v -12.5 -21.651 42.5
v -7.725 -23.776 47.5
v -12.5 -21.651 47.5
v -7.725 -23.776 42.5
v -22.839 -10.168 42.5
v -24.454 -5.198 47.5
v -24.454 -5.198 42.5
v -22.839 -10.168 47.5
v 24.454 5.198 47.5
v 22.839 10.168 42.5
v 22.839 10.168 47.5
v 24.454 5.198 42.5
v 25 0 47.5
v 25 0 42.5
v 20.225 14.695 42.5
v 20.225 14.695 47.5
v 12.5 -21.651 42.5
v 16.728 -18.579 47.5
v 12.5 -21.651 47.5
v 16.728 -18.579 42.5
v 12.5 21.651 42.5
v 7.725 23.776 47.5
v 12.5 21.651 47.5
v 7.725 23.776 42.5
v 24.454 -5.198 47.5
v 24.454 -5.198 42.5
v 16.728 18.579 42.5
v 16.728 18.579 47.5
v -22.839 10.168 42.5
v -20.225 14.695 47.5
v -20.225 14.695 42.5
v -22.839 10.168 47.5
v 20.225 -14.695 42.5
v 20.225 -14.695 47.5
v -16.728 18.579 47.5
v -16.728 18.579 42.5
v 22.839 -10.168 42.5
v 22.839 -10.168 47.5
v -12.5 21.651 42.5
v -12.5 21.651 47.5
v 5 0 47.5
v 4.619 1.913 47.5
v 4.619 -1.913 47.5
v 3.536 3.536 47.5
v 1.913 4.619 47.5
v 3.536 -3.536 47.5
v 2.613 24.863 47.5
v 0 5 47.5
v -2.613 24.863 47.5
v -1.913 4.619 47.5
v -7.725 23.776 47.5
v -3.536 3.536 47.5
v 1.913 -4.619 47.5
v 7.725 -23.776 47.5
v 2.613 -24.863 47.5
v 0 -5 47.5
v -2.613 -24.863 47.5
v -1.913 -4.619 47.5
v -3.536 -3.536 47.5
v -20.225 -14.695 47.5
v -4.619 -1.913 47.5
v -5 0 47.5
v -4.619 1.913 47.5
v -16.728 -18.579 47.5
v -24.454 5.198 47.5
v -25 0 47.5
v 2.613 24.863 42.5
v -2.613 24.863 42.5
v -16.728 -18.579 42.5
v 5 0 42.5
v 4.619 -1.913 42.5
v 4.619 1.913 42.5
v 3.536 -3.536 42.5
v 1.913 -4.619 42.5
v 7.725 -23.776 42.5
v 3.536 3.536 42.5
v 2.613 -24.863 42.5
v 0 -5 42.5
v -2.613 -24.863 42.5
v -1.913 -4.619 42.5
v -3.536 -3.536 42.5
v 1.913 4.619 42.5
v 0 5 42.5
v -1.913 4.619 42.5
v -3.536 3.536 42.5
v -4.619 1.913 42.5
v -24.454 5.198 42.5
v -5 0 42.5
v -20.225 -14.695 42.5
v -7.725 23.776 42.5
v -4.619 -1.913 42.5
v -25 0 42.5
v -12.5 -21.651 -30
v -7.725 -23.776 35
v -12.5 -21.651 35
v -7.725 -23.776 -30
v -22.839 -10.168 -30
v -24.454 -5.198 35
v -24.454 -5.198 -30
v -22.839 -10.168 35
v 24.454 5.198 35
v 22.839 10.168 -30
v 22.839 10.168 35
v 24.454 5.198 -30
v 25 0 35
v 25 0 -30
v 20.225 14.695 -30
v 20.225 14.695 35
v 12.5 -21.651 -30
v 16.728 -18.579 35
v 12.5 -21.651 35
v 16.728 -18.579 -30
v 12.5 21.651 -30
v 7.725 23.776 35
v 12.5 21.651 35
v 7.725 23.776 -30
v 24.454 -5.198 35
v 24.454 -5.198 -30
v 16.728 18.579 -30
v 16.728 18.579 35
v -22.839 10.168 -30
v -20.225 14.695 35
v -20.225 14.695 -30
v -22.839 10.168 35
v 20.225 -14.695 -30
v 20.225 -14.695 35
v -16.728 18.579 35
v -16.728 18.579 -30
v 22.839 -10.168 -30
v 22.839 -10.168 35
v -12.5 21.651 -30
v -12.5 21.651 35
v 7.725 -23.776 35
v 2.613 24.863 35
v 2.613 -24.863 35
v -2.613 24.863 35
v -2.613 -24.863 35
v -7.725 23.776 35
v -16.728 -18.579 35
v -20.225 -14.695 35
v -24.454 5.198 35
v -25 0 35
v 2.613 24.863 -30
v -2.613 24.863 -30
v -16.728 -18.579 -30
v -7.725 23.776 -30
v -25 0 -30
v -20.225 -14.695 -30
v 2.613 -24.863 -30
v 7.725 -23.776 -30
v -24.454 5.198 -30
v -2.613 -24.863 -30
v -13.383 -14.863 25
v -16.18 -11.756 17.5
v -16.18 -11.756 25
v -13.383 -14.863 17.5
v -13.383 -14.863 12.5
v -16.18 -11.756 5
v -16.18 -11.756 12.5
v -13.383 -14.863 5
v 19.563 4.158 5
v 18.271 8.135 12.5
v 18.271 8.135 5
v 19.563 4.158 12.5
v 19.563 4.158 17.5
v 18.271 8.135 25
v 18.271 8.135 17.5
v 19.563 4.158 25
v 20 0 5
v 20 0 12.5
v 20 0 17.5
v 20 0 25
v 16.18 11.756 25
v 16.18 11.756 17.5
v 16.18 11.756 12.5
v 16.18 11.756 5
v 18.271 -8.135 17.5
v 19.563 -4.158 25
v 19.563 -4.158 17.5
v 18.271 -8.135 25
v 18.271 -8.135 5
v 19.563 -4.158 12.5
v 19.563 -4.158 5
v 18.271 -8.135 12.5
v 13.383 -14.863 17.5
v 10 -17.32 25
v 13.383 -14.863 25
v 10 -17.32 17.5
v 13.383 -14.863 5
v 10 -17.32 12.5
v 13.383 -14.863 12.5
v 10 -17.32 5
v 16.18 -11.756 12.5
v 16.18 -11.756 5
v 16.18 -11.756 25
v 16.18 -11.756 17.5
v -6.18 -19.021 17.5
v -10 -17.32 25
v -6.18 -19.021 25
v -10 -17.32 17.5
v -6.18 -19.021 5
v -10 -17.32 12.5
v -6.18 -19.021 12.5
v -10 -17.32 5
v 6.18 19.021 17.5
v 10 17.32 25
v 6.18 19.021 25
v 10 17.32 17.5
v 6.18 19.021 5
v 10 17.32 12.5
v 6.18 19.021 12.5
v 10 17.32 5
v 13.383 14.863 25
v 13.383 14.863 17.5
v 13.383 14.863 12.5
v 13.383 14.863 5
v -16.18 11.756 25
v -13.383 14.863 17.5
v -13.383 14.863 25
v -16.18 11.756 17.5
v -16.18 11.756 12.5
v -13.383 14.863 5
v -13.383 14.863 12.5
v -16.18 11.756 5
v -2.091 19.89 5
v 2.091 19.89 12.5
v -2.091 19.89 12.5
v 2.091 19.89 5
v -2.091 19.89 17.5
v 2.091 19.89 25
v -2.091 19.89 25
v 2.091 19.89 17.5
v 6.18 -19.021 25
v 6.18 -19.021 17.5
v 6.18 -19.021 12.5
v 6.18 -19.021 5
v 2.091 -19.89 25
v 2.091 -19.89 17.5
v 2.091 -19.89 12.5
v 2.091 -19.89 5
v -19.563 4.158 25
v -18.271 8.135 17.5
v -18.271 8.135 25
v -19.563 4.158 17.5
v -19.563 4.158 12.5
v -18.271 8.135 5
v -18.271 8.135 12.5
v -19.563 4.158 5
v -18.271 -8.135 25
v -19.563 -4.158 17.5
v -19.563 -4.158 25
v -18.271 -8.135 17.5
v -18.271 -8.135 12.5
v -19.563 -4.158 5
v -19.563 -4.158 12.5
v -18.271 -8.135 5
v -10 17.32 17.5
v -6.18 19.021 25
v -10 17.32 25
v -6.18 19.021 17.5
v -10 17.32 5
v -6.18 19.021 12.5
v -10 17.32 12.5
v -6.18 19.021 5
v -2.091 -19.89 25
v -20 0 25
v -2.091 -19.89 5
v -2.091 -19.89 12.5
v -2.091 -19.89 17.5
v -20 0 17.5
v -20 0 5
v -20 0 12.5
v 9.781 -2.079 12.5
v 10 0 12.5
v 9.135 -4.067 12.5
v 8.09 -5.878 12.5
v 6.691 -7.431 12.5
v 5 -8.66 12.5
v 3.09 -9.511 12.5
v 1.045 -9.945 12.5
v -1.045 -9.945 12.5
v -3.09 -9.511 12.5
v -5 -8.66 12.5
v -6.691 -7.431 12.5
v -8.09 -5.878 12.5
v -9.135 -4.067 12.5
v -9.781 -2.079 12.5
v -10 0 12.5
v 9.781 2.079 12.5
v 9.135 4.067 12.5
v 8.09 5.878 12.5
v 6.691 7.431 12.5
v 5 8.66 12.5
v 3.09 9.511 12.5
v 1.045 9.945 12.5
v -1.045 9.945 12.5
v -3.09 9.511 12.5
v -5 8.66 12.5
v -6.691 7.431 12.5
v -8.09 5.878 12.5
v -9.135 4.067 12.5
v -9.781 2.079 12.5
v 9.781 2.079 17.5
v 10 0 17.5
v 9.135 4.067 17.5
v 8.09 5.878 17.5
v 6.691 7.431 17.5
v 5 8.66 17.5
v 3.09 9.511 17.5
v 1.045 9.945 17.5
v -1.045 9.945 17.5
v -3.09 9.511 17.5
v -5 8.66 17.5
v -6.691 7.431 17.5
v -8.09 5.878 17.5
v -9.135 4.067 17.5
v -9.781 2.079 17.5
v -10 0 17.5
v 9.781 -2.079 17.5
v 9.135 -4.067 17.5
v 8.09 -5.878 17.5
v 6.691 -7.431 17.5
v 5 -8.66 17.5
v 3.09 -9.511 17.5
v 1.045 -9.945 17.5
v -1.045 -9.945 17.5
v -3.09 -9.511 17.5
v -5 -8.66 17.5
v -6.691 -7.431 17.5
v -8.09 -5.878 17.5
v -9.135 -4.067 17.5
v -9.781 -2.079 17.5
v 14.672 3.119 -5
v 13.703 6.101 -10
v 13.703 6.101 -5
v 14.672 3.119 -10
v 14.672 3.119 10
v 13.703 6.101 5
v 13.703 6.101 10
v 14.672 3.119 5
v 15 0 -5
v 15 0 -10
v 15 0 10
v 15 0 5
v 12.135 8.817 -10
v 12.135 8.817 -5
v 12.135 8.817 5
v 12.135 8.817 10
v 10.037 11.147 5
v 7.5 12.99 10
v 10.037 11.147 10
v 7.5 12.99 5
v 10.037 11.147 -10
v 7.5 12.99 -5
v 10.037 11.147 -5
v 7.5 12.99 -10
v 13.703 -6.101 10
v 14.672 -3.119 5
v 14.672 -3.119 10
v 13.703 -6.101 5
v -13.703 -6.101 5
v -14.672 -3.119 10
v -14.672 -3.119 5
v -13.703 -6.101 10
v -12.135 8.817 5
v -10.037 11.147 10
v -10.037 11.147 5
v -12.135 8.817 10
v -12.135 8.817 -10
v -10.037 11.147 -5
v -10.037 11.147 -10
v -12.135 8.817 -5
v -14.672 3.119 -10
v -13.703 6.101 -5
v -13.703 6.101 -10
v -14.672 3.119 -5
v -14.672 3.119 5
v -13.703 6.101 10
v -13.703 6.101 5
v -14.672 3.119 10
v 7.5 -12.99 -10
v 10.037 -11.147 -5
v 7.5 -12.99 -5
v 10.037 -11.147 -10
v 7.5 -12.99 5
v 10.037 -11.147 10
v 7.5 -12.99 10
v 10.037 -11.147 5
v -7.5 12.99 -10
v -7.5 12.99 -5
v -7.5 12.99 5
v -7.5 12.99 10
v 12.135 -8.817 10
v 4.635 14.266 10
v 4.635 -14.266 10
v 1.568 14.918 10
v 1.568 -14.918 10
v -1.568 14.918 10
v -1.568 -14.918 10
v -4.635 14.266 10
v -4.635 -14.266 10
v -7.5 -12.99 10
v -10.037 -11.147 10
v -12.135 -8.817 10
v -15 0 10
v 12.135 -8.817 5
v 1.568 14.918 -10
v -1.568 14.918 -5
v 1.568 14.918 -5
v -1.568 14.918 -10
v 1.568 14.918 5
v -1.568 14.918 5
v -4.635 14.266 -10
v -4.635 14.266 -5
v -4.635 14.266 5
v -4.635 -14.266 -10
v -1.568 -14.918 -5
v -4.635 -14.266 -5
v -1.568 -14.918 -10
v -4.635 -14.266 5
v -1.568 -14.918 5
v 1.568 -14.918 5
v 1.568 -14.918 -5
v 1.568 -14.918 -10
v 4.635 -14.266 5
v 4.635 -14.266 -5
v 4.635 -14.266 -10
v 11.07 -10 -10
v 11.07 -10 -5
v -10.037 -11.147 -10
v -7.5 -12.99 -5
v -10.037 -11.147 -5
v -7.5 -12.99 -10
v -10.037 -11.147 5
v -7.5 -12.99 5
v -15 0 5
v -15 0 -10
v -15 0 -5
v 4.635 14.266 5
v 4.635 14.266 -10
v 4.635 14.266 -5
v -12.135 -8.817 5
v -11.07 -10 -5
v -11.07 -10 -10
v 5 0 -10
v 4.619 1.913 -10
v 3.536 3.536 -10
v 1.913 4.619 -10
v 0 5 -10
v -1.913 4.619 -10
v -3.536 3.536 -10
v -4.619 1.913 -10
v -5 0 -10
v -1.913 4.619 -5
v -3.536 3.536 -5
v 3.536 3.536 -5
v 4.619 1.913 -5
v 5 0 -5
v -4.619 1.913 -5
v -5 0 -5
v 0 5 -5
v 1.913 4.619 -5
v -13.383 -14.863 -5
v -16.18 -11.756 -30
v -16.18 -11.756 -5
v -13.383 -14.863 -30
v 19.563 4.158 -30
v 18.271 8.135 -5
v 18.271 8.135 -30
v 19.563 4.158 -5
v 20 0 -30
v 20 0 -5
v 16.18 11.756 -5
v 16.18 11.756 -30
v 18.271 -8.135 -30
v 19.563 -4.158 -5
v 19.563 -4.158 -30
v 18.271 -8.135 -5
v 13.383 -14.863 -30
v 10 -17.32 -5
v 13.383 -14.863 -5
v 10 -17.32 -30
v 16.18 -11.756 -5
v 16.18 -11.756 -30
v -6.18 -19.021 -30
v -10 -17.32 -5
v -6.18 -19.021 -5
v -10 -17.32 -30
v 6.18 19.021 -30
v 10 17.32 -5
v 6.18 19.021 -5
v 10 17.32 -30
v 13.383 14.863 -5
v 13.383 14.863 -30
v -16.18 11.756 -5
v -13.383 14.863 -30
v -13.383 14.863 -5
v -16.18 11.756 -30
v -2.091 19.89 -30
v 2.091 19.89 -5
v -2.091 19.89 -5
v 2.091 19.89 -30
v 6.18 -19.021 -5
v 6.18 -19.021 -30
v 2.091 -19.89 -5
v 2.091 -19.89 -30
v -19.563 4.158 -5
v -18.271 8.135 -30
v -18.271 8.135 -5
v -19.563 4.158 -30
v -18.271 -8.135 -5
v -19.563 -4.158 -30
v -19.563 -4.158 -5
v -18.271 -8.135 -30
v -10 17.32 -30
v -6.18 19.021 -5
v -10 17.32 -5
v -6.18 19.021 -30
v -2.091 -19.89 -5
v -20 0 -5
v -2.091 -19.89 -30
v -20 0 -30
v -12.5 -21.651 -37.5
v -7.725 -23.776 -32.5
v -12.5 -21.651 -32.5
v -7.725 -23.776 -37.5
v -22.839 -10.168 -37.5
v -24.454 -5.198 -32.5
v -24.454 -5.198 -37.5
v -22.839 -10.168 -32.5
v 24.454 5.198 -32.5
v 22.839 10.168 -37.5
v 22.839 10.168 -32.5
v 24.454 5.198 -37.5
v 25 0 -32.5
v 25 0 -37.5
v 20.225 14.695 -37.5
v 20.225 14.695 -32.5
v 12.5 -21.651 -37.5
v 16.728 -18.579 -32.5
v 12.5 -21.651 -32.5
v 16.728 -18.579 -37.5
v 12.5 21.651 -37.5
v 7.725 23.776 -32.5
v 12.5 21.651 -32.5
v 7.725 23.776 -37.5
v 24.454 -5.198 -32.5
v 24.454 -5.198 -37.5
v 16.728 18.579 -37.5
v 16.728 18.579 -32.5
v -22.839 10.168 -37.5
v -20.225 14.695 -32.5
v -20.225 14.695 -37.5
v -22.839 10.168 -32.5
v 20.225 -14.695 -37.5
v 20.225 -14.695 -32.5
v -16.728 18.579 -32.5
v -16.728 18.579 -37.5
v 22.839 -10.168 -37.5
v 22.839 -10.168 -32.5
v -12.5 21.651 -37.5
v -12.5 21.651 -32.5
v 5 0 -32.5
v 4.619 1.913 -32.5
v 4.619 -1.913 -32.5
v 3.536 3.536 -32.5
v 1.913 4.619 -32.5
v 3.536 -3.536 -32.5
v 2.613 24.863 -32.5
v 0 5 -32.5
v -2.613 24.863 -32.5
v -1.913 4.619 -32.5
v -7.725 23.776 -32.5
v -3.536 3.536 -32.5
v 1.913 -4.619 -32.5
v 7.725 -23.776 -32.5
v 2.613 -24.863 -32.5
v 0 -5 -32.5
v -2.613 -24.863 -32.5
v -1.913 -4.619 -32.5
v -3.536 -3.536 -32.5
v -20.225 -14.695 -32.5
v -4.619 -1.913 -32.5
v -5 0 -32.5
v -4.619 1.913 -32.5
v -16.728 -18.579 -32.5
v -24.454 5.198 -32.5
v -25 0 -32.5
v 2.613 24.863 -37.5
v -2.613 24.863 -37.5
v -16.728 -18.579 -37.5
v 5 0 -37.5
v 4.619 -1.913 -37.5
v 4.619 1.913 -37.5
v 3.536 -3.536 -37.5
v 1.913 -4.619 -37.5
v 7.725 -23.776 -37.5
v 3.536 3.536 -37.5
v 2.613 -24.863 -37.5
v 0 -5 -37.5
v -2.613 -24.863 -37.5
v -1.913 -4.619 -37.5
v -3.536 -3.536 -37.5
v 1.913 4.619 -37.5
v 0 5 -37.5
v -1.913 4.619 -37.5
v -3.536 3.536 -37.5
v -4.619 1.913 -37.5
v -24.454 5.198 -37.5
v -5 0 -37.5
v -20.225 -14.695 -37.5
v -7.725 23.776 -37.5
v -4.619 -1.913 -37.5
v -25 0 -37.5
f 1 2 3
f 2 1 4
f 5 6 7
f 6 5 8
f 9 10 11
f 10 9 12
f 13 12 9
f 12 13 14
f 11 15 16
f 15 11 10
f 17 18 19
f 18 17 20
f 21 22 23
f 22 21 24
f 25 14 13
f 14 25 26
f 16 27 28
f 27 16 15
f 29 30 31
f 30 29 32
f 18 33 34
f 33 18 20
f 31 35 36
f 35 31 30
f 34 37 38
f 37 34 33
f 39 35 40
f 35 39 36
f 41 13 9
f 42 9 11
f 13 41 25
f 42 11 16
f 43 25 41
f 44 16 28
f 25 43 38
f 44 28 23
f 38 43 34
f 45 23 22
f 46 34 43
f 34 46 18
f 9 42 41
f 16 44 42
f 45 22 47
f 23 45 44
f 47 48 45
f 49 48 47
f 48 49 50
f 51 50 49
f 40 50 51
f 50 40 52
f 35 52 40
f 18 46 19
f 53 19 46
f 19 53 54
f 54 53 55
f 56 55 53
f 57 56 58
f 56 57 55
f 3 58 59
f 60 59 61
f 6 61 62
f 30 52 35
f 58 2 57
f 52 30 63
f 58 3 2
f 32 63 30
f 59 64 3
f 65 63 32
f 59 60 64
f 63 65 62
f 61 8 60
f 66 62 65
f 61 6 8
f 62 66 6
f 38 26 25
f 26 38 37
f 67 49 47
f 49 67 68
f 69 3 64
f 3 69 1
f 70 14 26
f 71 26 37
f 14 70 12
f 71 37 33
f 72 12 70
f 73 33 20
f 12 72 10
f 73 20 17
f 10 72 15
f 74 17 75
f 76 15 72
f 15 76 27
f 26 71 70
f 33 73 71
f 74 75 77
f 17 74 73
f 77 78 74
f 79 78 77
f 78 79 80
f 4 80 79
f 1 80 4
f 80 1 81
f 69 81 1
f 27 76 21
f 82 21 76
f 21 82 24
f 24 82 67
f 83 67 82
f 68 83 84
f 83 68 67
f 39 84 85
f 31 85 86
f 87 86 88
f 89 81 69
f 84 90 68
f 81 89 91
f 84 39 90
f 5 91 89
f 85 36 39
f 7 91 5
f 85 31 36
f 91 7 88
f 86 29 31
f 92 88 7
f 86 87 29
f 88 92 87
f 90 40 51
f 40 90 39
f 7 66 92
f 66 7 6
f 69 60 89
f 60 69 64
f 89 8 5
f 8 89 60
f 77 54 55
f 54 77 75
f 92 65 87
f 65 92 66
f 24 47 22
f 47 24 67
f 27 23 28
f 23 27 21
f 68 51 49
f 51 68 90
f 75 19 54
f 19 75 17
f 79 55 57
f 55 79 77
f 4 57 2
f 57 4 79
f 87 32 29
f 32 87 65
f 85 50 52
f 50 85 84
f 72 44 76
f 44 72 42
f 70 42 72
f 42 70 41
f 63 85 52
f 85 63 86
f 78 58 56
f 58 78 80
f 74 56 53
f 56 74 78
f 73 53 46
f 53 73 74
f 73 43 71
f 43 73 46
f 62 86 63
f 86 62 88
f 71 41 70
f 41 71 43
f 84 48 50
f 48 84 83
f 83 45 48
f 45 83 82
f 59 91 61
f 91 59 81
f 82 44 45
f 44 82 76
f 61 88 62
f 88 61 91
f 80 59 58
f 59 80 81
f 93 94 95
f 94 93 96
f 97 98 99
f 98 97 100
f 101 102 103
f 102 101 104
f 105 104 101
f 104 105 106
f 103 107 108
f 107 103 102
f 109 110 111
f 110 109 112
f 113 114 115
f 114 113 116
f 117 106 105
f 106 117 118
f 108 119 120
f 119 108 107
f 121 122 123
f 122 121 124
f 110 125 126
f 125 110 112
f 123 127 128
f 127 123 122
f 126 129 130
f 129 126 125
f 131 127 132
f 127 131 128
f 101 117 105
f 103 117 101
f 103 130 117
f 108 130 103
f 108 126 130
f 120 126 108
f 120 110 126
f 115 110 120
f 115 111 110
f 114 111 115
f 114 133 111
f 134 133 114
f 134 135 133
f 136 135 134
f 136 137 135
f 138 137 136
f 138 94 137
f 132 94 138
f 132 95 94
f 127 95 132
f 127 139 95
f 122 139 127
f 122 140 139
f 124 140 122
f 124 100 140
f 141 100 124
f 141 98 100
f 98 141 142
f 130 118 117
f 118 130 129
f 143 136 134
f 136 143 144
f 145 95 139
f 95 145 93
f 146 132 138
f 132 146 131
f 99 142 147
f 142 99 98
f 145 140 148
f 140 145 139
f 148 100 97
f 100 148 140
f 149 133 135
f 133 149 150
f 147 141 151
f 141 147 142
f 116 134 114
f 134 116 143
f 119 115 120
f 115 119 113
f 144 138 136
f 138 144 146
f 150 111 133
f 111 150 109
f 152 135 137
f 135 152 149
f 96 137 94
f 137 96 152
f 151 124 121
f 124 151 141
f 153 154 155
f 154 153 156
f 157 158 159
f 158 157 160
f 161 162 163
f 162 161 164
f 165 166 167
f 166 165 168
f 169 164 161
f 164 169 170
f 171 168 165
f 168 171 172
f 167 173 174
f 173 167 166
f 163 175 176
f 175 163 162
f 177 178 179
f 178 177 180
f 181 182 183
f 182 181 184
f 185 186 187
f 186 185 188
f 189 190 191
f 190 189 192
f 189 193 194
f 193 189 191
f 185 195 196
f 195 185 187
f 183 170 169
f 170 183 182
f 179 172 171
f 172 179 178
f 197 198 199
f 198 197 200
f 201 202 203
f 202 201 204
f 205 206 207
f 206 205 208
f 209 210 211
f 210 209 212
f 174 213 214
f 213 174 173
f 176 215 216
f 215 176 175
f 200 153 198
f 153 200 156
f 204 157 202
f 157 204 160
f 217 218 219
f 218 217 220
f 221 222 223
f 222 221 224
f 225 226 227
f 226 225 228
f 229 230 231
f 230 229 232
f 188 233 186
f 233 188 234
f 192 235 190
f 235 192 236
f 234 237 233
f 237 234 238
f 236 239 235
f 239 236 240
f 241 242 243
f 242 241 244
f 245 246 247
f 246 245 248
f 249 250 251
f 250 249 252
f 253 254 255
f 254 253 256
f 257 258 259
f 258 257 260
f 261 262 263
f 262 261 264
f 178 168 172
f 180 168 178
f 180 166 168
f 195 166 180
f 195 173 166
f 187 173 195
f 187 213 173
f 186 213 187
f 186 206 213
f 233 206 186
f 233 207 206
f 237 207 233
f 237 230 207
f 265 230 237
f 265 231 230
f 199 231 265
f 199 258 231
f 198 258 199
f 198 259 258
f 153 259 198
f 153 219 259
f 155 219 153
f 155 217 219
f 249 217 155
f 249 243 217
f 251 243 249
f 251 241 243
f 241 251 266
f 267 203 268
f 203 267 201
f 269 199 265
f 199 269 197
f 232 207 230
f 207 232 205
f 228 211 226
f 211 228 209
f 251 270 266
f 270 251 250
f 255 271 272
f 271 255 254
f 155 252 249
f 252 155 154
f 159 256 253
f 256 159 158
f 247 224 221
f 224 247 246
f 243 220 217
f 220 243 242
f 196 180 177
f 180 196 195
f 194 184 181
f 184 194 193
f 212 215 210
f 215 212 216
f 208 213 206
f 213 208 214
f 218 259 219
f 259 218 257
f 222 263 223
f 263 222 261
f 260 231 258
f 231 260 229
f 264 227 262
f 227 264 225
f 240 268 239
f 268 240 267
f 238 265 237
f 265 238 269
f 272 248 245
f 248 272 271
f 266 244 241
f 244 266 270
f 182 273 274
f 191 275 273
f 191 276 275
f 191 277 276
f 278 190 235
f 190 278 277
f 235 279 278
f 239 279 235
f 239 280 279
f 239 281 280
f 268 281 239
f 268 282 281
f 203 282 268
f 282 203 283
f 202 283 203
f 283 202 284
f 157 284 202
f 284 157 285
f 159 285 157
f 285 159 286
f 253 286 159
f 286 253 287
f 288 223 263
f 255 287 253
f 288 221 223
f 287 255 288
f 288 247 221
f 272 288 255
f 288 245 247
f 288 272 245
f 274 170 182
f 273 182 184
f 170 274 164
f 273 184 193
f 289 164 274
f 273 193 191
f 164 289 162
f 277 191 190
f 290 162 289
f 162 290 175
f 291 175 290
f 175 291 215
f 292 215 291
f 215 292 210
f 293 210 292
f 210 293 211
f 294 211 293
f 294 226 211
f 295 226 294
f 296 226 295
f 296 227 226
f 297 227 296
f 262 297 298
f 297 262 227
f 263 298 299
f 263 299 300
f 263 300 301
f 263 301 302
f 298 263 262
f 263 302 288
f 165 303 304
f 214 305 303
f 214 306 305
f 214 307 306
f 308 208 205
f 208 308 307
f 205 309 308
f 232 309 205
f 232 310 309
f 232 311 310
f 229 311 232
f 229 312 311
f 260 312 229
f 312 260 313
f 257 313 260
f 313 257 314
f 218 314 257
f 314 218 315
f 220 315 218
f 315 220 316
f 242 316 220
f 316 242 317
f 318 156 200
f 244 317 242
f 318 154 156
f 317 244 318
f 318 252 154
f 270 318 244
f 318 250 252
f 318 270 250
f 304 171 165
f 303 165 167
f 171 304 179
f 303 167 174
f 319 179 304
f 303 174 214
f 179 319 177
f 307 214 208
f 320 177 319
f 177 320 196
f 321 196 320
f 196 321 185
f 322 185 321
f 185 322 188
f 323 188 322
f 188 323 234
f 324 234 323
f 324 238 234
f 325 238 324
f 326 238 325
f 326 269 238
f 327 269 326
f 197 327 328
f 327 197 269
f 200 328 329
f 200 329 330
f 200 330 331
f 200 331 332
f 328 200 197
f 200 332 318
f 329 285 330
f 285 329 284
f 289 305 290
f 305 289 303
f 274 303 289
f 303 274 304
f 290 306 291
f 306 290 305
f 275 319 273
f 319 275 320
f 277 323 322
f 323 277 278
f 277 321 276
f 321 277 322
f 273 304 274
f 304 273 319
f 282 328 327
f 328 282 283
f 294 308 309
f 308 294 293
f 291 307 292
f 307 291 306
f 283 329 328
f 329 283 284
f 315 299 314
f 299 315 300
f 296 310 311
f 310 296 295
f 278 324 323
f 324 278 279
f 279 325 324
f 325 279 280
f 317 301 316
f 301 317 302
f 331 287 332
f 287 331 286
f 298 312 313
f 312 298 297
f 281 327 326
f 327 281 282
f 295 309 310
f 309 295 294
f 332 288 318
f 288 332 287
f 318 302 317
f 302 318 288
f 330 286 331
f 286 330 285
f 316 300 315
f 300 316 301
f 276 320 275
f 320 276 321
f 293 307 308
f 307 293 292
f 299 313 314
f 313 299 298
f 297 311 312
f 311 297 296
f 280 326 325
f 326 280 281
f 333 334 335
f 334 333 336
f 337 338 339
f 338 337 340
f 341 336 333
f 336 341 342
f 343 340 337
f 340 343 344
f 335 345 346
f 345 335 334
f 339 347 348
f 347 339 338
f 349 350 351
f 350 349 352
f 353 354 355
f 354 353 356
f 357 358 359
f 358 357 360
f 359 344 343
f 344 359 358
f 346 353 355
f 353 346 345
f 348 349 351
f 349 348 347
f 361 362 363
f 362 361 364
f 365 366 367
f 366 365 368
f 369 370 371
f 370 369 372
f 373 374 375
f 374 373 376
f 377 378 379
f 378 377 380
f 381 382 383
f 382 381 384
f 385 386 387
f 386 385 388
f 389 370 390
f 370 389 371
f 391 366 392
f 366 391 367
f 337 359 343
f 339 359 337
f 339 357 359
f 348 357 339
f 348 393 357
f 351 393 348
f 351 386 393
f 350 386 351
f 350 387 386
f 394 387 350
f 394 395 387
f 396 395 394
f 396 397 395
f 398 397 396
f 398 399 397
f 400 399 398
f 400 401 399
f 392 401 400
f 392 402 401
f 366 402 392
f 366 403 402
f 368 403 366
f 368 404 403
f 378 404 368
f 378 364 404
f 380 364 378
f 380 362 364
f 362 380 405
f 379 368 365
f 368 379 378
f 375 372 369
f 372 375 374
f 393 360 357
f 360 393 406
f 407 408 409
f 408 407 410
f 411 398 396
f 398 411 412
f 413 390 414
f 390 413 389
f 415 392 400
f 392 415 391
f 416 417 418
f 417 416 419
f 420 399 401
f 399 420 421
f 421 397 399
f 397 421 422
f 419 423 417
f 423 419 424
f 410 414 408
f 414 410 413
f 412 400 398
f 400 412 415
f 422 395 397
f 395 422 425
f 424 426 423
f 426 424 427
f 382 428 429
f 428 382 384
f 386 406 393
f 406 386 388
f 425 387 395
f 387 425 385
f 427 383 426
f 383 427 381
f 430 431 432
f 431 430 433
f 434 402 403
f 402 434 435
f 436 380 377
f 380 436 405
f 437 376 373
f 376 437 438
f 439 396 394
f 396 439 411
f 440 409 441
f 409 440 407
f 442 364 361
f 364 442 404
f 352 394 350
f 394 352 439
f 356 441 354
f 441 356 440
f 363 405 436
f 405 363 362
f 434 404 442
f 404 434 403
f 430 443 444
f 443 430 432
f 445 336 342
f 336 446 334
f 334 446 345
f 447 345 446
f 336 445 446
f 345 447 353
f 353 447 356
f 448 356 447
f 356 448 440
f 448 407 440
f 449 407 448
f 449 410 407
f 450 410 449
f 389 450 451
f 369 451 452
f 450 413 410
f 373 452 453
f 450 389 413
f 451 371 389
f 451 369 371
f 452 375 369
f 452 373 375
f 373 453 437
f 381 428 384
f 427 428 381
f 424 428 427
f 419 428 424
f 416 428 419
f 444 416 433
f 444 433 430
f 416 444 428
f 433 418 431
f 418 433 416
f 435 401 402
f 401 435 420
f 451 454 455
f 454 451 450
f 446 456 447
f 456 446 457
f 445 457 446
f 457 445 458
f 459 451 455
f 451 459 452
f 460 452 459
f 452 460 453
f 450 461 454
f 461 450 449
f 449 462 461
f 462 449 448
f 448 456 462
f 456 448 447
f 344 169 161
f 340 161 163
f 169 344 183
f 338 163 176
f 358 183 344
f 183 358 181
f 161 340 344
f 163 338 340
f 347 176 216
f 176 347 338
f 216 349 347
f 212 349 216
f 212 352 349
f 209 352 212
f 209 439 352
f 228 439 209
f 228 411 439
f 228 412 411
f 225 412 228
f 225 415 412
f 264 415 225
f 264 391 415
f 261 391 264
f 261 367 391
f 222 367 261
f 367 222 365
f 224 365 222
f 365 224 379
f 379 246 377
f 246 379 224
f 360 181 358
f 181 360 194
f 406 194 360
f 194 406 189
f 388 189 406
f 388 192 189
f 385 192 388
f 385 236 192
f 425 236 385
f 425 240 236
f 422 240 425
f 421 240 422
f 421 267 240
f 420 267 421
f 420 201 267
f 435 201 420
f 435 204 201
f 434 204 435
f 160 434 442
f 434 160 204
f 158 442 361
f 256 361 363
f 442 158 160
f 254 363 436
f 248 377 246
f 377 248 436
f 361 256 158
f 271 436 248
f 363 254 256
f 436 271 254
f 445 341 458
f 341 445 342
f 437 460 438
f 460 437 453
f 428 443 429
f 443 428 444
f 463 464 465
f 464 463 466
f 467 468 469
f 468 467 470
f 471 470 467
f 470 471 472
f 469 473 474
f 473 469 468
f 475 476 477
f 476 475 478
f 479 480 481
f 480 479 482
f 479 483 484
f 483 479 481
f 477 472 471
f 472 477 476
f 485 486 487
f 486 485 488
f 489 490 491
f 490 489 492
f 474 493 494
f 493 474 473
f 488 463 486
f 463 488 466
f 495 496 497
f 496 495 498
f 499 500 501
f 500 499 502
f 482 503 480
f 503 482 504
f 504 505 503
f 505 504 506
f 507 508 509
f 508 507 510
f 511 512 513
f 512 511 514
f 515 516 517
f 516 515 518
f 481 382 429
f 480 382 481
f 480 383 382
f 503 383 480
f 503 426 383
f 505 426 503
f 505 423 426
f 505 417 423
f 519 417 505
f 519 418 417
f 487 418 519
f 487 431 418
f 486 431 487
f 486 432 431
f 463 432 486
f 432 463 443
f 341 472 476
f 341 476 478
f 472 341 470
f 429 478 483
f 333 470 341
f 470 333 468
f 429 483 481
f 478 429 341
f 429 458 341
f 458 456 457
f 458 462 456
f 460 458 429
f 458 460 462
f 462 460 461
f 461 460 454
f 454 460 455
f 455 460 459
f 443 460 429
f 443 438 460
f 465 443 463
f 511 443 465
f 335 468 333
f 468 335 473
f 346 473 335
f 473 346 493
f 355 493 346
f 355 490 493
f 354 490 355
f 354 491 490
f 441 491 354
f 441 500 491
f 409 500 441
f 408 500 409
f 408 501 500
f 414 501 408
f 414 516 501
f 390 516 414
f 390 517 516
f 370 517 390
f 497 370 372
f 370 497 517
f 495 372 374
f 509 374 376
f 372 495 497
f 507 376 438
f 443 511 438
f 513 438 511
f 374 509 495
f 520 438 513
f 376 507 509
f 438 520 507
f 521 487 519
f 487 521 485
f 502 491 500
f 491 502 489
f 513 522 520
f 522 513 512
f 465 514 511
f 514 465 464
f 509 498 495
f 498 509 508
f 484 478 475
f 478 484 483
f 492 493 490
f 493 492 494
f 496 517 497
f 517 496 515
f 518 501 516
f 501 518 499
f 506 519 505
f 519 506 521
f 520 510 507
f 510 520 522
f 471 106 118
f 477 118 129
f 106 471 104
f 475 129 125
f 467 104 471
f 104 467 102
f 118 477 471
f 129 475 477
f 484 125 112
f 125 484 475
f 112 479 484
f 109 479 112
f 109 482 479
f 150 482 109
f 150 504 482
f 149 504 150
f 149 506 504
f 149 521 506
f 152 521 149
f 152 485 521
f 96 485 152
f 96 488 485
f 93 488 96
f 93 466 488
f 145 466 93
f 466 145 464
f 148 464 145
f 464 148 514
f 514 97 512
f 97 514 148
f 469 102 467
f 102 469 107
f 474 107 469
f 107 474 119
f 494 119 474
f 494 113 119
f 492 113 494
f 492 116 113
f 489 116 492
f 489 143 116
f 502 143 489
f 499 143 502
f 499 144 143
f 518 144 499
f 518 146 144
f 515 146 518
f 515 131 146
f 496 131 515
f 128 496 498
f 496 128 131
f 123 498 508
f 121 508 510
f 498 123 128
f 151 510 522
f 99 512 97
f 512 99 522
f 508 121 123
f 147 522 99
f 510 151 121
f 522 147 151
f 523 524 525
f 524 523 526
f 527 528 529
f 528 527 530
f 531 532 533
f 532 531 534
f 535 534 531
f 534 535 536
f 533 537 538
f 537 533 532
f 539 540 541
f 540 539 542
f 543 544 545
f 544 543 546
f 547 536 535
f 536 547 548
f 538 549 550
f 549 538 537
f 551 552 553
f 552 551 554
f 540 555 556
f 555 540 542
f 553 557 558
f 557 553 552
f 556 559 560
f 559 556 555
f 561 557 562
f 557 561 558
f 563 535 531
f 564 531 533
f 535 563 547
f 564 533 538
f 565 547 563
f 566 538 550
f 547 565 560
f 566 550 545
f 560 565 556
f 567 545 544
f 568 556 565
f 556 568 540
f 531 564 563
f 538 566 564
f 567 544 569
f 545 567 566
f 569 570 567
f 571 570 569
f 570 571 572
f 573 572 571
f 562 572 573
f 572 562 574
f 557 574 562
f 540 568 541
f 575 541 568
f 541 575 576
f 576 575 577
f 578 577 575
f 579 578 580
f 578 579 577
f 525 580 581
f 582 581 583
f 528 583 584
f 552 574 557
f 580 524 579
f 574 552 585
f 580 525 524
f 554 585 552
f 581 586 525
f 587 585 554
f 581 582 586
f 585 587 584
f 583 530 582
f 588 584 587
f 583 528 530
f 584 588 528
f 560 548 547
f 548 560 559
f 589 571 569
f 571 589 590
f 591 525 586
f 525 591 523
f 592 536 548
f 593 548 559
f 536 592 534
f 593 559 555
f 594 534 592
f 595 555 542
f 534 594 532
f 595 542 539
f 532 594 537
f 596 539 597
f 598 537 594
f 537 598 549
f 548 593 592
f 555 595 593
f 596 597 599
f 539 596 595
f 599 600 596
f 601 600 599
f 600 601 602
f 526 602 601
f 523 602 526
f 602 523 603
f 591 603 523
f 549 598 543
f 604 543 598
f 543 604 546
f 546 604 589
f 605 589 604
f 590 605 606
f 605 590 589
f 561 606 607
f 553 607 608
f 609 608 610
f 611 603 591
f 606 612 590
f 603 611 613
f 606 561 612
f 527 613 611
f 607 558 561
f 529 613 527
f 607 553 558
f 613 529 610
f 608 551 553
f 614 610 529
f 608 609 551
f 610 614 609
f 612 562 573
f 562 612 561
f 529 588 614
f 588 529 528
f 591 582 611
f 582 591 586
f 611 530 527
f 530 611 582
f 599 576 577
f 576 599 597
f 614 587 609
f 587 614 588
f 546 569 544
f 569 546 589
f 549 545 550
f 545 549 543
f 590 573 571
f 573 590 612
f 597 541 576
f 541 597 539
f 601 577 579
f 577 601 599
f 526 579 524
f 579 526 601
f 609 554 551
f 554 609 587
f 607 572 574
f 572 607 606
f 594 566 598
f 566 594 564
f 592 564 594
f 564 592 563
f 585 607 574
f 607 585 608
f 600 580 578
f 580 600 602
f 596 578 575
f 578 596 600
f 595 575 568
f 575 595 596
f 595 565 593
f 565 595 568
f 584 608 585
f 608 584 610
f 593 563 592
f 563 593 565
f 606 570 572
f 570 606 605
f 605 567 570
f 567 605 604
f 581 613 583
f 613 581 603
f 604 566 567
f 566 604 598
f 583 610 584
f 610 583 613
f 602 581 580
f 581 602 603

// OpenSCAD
// Component: Central Hub
module central_hub() {
    difference() {
        // Main cylinder
        cylinder(h = 20, d = 30, center = true);
        
        // Central bore
        translate([0, 0, -10])
            cylinder(h = 30, d = 10, center = true);

        // Slot
        translate([0, -5, -20])
            cube([30, 10, 40], center = true);
    }
}

// Component: Outer Sleeve
module outer_sleeve() {
    difference() {
        // Hollow cylinder with ribbed texture
        cylinder(h = 40, d = 50, center = true);
        translate([0, 0, -20])
            cylinder(h = 60, d = 40, center = true);
        
        // Flange
        translate([0, 0, -20])
            cylinder(h = 10, d = 60, center = true);
    }
}

// Component: Locking Cap
module locking_cap() {
    difference() {
        // Outer disc
        cylinder(h = 5, d = 50, center = true);

        // Central hole
        translate([0, 0, -2.5])
            cylinder(h = 10, d = 10, center = true);
    }
}

// Component: Inner Ring
module inner_ring() {
    difference() {
        // Ring body
        cylinder(h = 5, d = 40, center = true);

        // Central hole
        translate([0, 0, -2.5])
            cylinder(h = 10, d = 20, center = true);
    }
}

// Full Assembly
module full_model() {
    // Layer 1: Top Locking Cap
    translate([0, 0, 45])
        locking_cap();

    // Layer 2: Outer Sleeve and Inner Ring
    translate([0, 0, 15])
        outer_sleeve();
    translate([0, 0, 15])
        inner_ring();

    // Layer 3: Central Hub
    central_hub();

    // Layer 4: Bottom Outer Sleeve
    translate([0, 0, -15])
        outer_sleeve();

    // Layer 5: Bottom Locking Cap
    translate([0, 0, -35])
        locking_cap();
}

// Render full model
full_model();
